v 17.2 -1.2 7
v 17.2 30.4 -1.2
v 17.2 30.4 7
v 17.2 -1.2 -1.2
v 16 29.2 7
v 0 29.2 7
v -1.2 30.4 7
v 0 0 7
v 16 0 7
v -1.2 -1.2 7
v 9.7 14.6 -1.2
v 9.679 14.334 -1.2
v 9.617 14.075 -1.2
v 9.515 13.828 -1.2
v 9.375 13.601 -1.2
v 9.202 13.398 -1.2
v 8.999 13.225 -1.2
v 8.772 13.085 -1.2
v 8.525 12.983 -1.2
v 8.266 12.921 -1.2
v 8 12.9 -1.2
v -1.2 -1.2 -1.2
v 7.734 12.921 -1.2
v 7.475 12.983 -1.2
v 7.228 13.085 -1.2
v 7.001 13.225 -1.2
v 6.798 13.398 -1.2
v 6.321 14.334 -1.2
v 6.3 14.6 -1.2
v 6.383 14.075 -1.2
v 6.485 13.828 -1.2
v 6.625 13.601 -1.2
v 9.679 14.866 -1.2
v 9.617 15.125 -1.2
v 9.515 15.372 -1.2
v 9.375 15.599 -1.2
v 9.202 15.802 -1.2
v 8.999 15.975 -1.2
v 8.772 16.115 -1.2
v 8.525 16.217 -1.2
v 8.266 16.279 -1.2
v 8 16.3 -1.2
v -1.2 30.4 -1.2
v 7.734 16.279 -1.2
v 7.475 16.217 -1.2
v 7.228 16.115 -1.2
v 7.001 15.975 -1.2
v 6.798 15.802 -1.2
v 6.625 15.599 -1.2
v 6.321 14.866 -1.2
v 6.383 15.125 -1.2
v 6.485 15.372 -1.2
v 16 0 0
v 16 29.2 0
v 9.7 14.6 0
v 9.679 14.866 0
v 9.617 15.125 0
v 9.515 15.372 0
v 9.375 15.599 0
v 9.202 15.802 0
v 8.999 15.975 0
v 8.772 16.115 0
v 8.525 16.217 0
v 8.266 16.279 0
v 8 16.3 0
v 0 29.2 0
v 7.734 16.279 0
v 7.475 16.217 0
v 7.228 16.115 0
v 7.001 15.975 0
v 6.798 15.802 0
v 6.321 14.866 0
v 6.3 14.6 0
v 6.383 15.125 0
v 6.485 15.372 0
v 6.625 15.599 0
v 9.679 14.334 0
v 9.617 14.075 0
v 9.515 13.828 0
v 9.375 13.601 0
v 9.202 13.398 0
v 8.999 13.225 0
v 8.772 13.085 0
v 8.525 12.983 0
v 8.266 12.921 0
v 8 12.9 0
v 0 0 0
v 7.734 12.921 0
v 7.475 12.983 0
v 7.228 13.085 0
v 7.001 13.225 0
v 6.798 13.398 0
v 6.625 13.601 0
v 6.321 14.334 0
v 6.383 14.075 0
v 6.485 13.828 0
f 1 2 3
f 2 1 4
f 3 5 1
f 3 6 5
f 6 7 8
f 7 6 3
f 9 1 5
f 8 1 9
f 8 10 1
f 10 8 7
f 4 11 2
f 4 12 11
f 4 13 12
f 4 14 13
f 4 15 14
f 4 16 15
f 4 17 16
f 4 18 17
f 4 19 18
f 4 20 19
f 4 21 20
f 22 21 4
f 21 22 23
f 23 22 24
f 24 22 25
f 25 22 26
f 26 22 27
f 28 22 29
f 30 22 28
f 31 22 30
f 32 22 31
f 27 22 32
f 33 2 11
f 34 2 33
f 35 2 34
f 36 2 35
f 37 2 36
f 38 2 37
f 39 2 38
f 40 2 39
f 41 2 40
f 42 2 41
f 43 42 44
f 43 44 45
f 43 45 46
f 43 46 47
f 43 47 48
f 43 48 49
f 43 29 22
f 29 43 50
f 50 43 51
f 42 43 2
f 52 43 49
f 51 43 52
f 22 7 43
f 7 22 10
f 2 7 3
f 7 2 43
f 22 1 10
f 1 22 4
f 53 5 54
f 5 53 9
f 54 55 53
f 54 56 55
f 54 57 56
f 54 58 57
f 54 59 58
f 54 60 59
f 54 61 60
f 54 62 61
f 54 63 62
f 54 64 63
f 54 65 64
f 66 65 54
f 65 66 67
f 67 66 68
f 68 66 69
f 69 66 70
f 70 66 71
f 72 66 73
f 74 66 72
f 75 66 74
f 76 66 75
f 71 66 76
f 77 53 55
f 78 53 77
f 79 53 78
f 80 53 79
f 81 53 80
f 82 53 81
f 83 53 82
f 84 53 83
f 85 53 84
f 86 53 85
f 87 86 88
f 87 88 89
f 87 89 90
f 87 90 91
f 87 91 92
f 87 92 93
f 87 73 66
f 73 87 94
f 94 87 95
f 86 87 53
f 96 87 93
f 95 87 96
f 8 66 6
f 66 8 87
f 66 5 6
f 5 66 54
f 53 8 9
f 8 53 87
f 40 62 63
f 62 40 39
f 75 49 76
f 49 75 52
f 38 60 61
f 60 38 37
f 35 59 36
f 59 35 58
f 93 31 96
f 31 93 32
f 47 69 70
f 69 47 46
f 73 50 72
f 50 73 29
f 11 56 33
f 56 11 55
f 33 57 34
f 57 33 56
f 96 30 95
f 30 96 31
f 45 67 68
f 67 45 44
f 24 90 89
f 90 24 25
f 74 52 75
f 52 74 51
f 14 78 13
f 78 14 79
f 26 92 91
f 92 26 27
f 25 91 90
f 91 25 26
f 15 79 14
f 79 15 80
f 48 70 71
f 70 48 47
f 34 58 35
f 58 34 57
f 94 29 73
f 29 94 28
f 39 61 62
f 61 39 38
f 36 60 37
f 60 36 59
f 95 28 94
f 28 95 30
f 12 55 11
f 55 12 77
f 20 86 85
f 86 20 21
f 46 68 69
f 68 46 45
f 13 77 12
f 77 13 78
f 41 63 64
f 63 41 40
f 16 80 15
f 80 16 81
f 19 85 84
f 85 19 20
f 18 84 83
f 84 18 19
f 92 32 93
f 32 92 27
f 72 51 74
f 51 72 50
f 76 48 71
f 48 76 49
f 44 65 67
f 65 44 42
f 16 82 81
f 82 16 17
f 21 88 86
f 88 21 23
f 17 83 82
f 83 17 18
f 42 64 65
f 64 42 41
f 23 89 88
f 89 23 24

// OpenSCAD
w=16;
l=28.2+1;//+1 чтобы стопудов налазило
h=7;
th=1.2;

module bottom()
{
	difference()
	{
		translate ([-th,-th,-th])
			cube ([w+th*2,l+th*2,h+th]);
		cube ([w,l,h+1]);
		translate ([w/2,l/2,-th-0.1])
			cylinder (d=3.4,h=20,$fn=40);
	}
}
bottom ();
	
